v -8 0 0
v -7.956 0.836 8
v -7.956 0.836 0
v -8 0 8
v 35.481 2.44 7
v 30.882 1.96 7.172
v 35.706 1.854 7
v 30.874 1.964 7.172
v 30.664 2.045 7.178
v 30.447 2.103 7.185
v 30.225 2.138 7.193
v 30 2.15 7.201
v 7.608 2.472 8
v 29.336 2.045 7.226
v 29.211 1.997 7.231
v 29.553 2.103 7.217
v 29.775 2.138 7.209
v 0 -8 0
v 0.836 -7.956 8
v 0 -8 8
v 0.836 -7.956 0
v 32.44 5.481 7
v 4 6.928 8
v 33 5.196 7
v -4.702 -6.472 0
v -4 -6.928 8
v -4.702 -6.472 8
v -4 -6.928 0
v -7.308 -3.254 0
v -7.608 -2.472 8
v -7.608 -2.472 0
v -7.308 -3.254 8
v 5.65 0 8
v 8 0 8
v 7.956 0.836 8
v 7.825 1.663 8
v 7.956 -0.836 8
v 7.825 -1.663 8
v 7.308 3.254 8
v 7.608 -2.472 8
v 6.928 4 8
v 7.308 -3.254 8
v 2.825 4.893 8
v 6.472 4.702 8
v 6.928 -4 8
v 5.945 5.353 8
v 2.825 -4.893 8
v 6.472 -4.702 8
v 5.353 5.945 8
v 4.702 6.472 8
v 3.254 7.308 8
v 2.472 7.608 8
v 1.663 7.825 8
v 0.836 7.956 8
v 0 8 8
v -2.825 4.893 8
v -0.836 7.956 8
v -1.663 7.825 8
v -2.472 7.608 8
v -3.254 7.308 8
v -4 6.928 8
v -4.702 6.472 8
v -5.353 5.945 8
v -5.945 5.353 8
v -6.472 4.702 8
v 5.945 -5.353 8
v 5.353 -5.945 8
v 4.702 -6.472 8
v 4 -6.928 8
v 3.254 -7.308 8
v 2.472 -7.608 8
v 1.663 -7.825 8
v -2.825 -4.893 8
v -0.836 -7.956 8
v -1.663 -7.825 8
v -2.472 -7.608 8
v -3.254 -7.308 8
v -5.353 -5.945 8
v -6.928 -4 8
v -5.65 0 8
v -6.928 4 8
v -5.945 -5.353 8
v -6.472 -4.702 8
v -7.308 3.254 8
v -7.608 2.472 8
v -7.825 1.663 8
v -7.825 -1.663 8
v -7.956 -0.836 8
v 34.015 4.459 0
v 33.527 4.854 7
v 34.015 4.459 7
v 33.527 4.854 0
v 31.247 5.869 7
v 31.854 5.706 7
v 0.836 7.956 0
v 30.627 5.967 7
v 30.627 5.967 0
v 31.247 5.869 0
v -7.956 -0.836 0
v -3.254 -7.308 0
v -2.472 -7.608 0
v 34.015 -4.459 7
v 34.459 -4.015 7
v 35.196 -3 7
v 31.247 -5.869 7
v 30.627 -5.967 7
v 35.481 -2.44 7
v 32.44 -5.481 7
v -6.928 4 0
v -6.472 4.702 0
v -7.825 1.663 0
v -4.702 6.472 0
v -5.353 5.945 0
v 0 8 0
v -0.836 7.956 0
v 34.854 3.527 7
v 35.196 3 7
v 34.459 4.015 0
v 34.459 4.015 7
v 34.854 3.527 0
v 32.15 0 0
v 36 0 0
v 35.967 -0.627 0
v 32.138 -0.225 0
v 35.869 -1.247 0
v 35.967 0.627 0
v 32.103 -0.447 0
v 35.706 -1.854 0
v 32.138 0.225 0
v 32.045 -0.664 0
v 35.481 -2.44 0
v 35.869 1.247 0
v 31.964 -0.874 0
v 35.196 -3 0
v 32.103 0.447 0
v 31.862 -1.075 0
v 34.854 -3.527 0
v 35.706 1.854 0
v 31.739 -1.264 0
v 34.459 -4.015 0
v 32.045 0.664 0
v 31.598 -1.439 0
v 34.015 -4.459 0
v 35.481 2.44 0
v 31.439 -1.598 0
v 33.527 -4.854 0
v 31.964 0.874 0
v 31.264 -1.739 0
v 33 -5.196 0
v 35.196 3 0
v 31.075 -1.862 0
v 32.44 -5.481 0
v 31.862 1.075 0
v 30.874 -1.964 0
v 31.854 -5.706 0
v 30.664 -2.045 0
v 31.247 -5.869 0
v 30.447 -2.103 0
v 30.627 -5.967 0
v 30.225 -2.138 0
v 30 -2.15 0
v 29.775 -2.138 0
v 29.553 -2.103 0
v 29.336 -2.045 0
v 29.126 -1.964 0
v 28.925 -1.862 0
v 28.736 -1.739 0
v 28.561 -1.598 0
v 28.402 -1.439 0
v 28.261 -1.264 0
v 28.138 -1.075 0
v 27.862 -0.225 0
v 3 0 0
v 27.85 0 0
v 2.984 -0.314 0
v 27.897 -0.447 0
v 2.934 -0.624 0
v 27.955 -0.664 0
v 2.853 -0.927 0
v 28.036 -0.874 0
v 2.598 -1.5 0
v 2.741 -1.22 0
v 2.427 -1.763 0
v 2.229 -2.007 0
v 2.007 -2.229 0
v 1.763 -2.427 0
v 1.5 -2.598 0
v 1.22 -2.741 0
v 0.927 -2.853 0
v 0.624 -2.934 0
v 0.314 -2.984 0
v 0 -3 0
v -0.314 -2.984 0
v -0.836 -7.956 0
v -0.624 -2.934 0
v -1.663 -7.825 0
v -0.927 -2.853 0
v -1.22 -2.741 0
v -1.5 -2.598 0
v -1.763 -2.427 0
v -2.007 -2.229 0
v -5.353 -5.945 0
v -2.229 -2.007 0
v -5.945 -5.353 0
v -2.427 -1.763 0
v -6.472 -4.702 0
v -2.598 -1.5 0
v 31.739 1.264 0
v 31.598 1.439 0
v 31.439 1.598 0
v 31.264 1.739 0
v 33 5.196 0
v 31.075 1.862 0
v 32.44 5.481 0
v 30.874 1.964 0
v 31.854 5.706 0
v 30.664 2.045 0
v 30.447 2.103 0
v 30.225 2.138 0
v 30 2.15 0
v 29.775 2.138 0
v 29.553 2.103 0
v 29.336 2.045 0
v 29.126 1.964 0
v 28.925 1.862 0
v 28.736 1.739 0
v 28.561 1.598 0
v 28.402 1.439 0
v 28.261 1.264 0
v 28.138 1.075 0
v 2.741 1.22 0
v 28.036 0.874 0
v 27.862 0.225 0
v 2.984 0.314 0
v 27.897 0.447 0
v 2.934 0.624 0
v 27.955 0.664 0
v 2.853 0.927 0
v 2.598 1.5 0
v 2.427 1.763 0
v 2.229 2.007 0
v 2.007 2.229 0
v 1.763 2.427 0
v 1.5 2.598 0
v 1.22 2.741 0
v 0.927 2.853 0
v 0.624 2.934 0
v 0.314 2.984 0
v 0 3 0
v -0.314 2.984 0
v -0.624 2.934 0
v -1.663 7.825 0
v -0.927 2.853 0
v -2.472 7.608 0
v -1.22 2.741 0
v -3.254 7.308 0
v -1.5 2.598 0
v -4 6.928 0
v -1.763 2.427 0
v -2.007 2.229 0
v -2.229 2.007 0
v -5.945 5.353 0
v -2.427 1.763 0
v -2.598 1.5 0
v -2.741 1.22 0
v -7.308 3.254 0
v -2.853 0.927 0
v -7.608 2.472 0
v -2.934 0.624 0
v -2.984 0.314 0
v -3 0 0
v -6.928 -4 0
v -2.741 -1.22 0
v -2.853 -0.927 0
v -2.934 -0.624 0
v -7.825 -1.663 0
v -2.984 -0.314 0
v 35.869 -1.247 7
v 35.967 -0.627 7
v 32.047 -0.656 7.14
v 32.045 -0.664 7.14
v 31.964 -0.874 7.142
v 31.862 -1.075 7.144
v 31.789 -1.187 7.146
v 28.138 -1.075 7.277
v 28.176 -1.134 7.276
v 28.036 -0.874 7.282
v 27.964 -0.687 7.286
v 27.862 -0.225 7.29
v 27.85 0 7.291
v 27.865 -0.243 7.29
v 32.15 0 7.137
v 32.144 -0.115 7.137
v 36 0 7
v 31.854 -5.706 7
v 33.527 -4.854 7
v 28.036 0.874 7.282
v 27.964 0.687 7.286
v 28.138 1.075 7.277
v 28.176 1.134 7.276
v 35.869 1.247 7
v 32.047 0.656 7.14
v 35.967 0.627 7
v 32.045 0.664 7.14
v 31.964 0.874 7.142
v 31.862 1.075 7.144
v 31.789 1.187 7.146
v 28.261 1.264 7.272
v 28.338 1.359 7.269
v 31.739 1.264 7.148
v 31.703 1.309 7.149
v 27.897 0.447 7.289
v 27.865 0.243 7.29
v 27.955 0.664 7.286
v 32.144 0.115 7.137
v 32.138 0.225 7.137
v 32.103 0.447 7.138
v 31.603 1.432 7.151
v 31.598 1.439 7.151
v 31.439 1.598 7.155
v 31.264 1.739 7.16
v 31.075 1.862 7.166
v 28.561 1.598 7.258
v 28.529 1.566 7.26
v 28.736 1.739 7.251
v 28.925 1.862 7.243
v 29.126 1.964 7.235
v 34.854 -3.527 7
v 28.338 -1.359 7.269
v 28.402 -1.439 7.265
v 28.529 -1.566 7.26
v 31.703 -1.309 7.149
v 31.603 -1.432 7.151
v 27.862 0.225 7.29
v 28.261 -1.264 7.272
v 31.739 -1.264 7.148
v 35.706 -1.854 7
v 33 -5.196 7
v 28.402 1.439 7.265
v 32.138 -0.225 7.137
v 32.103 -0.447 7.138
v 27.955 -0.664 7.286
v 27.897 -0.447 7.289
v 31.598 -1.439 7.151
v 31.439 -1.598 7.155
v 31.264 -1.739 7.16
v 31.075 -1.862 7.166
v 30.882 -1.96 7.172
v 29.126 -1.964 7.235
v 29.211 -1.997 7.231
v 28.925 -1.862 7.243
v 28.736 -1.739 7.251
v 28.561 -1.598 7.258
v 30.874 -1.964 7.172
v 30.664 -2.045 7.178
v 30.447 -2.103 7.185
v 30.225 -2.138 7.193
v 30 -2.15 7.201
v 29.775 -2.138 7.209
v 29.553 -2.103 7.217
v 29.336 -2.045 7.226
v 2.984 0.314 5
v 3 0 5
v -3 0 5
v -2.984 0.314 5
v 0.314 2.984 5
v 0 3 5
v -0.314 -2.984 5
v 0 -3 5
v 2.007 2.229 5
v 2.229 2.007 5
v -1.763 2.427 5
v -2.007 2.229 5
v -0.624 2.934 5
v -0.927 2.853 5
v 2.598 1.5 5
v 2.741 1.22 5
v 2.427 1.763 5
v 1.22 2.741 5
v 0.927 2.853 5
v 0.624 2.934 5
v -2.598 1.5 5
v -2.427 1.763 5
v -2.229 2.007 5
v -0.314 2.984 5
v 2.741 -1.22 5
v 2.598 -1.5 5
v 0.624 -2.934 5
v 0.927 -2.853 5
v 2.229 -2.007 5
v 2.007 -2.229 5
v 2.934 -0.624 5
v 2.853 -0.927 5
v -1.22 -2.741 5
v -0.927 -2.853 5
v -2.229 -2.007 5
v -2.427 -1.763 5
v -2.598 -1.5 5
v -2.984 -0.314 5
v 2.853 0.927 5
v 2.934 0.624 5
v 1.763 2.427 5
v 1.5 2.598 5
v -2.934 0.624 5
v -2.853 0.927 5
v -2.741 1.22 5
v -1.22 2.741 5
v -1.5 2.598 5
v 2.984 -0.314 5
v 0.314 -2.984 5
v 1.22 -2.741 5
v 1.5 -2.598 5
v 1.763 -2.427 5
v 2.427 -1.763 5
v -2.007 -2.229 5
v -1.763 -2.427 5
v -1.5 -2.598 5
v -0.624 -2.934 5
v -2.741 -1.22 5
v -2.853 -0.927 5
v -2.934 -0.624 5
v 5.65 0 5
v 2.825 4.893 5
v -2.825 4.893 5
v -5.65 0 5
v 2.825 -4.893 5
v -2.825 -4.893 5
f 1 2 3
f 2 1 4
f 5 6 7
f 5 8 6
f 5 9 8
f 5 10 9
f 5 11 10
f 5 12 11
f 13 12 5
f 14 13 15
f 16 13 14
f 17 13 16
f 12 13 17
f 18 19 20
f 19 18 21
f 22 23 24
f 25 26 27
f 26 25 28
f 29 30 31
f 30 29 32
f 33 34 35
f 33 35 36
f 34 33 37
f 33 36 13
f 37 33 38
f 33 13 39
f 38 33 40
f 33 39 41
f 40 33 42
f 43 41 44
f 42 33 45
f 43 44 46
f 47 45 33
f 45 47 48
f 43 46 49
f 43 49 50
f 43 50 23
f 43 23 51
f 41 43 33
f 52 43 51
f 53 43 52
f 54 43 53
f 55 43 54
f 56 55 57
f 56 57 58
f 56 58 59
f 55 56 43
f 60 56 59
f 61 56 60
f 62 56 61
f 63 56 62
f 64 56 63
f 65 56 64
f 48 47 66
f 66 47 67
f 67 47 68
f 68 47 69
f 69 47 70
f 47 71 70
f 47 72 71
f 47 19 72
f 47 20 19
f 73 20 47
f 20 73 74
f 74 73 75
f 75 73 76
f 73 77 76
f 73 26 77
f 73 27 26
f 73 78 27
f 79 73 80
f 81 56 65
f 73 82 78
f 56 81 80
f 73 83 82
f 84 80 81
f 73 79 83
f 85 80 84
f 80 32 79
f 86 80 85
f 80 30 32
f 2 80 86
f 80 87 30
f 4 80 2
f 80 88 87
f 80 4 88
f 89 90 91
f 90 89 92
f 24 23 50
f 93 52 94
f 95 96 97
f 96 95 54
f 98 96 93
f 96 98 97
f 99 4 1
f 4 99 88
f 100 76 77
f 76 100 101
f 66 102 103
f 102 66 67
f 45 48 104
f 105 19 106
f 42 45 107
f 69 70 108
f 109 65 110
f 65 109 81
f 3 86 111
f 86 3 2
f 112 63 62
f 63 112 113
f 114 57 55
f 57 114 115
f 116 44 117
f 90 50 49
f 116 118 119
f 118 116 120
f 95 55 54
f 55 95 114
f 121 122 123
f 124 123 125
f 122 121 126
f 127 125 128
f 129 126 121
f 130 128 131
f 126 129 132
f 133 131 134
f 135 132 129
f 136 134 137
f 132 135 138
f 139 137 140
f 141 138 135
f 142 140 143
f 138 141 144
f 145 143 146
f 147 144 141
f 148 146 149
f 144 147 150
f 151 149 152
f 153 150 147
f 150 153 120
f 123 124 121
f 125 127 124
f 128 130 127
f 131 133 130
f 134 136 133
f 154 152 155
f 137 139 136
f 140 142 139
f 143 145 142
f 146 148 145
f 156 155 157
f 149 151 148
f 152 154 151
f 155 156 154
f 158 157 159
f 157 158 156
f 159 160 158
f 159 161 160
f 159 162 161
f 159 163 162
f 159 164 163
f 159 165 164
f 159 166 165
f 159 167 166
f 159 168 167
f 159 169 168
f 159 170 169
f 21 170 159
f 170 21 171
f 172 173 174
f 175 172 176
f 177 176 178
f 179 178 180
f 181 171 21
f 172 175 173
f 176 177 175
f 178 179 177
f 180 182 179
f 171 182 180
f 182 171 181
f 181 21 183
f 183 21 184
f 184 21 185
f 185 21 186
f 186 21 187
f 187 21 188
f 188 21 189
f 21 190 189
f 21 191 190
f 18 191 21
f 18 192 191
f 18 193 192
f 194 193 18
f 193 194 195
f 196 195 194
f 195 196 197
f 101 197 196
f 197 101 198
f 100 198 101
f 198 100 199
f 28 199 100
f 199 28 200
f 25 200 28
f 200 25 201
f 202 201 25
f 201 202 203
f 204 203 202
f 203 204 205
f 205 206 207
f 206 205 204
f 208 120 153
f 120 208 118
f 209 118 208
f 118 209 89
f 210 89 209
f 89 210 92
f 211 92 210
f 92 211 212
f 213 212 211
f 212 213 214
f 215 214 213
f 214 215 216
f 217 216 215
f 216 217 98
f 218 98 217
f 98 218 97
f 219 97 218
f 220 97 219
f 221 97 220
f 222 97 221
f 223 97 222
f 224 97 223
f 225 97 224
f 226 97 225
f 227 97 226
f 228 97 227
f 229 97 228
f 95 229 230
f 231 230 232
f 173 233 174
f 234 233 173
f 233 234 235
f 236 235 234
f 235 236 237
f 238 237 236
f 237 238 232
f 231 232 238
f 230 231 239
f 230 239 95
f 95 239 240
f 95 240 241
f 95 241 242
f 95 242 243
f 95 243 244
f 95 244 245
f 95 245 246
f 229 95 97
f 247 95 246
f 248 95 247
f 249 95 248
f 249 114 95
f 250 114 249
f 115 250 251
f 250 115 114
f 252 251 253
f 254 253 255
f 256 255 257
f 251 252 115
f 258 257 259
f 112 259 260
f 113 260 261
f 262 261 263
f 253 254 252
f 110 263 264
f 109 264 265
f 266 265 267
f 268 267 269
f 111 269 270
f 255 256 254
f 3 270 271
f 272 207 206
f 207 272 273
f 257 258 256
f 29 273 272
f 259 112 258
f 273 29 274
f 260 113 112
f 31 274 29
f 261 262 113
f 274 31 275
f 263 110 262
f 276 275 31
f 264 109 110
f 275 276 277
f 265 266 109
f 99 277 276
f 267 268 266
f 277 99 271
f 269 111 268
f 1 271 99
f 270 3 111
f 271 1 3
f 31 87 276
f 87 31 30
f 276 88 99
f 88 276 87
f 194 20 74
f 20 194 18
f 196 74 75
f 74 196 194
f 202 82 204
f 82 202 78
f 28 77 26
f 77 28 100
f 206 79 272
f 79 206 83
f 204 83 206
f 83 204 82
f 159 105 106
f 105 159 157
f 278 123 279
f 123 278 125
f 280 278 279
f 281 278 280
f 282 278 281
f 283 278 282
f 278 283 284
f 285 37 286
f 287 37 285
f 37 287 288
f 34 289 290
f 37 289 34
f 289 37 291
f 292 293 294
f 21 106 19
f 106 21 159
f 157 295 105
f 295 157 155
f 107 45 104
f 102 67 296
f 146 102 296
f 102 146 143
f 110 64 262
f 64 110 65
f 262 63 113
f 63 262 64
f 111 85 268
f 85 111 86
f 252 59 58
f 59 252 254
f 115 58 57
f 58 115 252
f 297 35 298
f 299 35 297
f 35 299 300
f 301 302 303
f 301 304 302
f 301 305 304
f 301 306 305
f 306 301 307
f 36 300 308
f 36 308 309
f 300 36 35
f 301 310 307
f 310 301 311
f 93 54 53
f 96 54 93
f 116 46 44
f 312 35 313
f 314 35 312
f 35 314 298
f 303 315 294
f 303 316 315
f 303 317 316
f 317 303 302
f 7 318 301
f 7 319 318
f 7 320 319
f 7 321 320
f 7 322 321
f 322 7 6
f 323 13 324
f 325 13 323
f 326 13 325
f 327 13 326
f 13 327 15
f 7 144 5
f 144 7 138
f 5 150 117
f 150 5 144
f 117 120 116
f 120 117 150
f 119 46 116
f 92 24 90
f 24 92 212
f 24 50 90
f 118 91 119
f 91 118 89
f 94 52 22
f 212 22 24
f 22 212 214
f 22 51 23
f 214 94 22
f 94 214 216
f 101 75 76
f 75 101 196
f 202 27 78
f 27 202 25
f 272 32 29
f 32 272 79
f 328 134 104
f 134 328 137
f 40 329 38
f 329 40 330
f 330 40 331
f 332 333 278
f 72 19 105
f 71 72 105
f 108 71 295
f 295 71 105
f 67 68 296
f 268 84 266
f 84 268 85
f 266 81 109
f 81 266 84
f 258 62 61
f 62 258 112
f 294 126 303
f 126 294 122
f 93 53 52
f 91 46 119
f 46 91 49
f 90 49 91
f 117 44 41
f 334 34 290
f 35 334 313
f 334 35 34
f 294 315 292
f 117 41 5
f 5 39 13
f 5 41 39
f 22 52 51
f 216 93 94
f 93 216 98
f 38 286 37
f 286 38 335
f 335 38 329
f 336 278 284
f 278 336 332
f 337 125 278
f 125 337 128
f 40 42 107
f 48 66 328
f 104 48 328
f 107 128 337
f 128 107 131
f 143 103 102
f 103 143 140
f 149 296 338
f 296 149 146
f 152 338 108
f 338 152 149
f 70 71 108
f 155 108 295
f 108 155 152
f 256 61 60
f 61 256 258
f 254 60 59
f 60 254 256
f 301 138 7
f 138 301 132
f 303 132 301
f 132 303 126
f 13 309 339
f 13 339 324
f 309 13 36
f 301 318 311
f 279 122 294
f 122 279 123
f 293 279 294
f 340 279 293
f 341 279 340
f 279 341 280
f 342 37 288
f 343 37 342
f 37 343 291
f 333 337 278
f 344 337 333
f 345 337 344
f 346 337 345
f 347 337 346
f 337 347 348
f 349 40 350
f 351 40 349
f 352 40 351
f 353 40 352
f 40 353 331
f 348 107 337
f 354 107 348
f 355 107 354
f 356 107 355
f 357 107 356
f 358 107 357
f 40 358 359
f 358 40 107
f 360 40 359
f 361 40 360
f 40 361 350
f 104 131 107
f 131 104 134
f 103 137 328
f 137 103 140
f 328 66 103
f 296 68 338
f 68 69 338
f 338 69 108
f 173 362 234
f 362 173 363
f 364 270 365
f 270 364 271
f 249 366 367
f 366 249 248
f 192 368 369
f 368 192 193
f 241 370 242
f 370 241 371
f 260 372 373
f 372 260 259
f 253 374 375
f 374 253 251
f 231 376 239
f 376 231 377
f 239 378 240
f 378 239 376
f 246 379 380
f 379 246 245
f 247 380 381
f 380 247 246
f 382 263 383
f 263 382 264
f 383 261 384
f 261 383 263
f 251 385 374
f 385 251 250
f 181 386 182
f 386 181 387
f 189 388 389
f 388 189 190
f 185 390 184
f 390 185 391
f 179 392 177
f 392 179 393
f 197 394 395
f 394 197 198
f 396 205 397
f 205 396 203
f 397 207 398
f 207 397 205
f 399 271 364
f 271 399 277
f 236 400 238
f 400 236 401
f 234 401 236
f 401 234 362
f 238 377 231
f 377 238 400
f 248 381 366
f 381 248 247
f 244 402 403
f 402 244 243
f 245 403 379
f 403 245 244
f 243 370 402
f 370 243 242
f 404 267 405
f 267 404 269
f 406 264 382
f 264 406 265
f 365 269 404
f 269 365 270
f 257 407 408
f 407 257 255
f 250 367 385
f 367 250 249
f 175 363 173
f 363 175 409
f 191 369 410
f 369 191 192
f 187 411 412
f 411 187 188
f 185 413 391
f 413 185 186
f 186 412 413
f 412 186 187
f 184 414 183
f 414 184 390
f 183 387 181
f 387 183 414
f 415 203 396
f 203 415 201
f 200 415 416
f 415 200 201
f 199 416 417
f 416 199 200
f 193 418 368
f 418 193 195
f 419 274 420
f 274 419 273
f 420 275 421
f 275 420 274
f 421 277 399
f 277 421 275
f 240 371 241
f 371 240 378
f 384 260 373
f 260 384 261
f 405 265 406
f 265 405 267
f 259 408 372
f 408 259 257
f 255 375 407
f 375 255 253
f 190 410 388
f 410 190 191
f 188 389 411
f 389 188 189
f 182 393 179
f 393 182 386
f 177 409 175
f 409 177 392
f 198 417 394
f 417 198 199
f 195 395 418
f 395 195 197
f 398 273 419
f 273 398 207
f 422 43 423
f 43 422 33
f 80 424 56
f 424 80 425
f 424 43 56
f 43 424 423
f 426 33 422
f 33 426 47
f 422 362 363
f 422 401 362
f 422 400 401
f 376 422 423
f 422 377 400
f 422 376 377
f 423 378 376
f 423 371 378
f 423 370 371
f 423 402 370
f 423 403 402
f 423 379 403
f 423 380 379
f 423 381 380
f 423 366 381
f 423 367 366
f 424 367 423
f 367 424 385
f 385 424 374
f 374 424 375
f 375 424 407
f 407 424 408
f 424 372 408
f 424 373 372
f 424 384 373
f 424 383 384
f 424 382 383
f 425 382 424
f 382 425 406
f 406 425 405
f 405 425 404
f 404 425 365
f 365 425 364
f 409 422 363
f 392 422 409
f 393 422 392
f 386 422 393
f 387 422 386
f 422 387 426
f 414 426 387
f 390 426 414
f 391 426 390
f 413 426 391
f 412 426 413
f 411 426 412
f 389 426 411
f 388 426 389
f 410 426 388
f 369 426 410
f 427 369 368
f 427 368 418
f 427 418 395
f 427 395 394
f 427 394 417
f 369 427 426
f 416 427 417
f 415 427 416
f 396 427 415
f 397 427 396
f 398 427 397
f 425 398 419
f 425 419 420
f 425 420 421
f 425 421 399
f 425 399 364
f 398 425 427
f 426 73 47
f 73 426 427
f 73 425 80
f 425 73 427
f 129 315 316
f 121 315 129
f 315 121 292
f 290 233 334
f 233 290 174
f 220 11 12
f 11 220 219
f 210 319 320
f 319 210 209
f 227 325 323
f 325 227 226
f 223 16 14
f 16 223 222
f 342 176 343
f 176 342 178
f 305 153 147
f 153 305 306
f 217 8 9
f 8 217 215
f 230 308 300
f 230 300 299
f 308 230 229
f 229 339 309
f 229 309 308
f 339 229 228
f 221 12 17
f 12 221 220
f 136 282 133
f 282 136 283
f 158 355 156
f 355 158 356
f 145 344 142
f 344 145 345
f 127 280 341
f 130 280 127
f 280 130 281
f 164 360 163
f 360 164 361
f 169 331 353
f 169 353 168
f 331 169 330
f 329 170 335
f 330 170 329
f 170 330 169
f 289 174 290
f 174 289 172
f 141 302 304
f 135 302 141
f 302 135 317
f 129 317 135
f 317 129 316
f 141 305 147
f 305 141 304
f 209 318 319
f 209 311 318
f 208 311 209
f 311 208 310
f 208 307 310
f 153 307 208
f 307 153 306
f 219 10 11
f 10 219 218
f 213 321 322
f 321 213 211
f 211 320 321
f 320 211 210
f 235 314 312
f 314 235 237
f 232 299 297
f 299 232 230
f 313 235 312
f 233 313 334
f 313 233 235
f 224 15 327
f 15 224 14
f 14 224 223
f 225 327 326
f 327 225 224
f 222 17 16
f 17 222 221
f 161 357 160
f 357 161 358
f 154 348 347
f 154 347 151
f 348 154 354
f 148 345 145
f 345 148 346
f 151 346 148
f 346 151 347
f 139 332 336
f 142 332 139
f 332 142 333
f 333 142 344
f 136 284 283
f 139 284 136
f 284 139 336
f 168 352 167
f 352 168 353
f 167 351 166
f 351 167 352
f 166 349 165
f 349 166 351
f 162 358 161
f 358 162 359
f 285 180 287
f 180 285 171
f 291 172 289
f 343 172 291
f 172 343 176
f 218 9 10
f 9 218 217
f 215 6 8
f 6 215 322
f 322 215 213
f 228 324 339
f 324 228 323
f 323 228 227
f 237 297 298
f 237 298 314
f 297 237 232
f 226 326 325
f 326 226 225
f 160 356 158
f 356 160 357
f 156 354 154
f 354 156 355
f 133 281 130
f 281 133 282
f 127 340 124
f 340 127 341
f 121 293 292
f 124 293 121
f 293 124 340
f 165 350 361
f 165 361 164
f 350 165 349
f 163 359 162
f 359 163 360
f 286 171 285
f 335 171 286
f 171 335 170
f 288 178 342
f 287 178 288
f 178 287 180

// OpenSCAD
$fn=60;
difference(){
hull(){
cylinder(d=16,h=8);
translate([30,0,0])cylinder(d=12,h=7);
}
cylinder(d=6,h=12);
translate([0,0,5])cylinder(d=11.3,h=4.5,$fn=6);
translate([30,0,0])cylinder(d=4.3,h=12);

}
